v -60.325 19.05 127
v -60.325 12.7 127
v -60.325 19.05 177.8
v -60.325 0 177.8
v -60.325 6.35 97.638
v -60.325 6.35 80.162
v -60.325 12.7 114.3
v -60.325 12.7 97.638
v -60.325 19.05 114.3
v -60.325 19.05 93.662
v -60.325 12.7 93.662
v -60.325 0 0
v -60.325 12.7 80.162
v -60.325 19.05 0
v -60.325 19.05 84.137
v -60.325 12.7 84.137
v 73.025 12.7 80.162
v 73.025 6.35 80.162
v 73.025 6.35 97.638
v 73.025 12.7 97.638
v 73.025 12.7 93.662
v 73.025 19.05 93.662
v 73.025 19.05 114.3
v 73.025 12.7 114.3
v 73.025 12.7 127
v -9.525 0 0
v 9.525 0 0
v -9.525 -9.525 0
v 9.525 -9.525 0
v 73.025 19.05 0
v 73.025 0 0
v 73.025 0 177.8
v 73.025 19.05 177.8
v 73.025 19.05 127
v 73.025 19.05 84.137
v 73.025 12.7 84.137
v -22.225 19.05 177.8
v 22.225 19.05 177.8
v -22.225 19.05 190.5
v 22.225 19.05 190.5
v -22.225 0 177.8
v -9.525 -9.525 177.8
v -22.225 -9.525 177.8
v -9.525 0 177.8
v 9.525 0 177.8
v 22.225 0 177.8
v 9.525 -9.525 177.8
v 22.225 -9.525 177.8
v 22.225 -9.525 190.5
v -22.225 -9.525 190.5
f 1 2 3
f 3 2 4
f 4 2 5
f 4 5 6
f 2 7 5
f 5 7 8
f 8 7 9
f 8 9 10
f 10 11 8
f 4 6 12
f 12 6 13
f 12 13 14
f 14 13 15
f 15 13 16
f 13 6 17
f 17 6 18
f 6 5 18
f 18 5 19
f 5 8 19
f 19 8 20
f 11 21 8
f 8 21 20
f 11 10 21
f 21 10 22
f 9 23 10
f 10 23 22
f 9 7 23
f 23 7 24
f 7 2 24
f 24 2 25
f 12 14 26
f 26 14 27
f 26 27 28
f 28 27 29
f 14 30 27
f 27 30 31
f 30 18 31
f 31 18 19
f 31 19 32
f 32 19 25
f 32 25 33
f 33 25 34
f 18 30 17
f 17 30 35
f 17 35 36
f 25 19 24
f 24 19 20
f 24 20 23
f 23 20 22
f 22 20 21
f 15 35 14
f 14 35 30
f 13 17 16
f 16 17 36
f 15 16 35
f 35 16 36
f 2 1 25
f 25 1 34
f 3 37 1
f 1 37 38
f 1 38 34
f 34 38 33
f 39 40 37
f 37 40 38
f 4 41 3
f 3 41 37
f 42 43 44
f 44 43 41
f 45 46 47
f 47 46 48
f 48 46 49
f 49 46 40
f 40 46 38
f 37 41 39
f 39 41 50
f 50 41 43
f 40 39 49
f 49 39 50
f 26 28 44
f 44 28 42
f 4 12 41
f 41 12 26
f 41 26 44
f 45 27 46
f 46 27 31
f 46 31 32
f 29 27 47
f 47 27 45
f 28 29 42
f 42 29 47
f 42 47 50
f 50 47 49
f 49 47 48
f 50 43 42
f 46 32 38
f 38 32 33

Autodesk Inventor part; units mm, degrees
ref_plane "YZ Plane" through (0, 0, 0) normal (1, 0, 0) x (0, 1, 0)
ref_plane "XZ Plane" through (0, 0, 0) normal (0, 1, 0) x (-1, 0, 0)
sketch "Sketch3" plane through (0, 0, 0) normal (0, 0, 1) x (1, 0, 0)
  line L0 (0, -9.525) -> (9.525, -9.525)
  line L1 (9.525, -9.525) -> (9.525, 0)
  line L2 (0, 0) -> (0, -9.525) construction
  line L3 (0, 0) -> (9.525, 0) construction
  line L4 (0, -9.525) -> (-9.525, -9.525)
  line L5 (-9.525, -9.525) -> (-9.525, 0)
  line L6 (9.525, 0) -> (73.025, 0)
  line L7 (-187.325, 0) -> (-187.325, 19.05)
  line L8 (-187.325, 0) -> (-9.525, 0)
  line L9 (73.025, 0) -> (73.025, 19.05)
  line L10 (73.025, 19.05) -> (-187.325, 19.05)
  dimension "d0" = 9.525
  dimension "d1" = 9.525
  dimension "d6" = 63.5
  dimension "d8" = 19.05
  dimension "d9" = 177.8
extrude "Extrusion1" add sketch "Sketch3" along normal mid plane 355.6
sketch "Sketch4" plane through (0, 0, 177.8) normal (0, 0, 1) x (1, 0, 0)
  line L0 (-187.325, 19.05) -> (73.025, 19.05) construction
  line L1 (0, 19.05) -> (0, -9.525) construction
  line L2 (9.525, -9.525) -> (-9.525, -9.525) construction
  line L3 (0, -9.525) -> (-22.225, -9.525)
  line L4 (-22.225, -9.525) -> (-22.225, 19.05)
  line L5 (-22.225, 19.05) -> (0, 19.05)
  line L6 (187.325, 19.05) -> (-73.025, 19.05) construction
  line L7 (0, -9.525) -> (22.225, -9.525)
  line L8 (22.225, -9.525) -> (22.225, 19.05)
  line L9 (0, 19.05) -> (22.225, 19.05)
  point P0 (0, 0)
  dimension "d12" = 22.225
extrude "Extrusion2" add sketch "Sketch4" along normal blind 12.7
mirror "Mirror1" about plane through (0, 0, 0) normal (0, 0, 1) of "Extrusion2"
sketch "Sketch6" plane through (-187.325, 0, -177.8) normal (0, -1, 0) x (1, 0, 0)
  line L0 (82.55, 165.1) -> (88.9, 165.1)
  line L1 (88.9, 165.1) -> (88.9, 190.5)
  line L2 (88.9, 190.5) -> (82.55, 190.5)
  line L3 (82.55, 190.5) -> (82.55, 165.1)
  line L4 (82.55, 165.1) -> (88.9, 190.5) construction
  line L5 (88.9, 165.1) -> (82.55, 190.5) construction
  line L6 (177.8, 0) -> (177.8, 355.6) projected
  point P0 (187.325, 177.8)
  point P1 (85.725, 177.8)
  dimension "d16" = 12.7
  dimension "d18" = 6.35
  dimension "d19" = 88.9
extrude "Extrusion3" cut sketch "Sketch6" against normal through all
sketch "Sketch7" plane through (0, 0, 177.8) normal (0, 0, 1) x (1, 0, 0)
  line L0 (-187.325, 19.05) -> (-22.225, 19.05) projected
  line L1 (-161.925, 19.05) -> (-117.475, 19.05)
  line L2 (-117.475, 19.05) -> (-117.475, -3.81)
  line L3 (-117.475, -3.81) -> (-161.925, -3.81)
  line L4 (-161.925, -3.81) -> (-161.925, 19.05)
  line L5 (-187.325, 19.05) -> (-187.325, 0) projected
  point P0 (0, 0)
  dimension "d22" = 44.45
  dimension "d23" = 22.86
  dimension "d24" = 25.4
extrude "Extrusion4" add sketch "Sketch7" along normal blind 12.7
mirror "Mirror2" about plane through (0, 0, 0) normal (0, 0, 1) of "Extrusion4"
sketch "Sketch9" plane through (73.025, 0, 177.8) normal (1, 0, 0) x (0, 0, -1)
  line L0 (355.6, 19.05) -> (0, 19.05) projected
  line L1 (50.8, 19.05) -> (63.5, 19.05)
  line L2 (63.5, 19.05) -> (63.5, 12.7)
  line L3 (63.5, 12.7) -> (50.8, 12.7)
  line L4 (50.8, 12.7) -> (50.8, 19.05)
  line L5 (0, 0) -> (0, 19.05) projected
  point P0 (177.8, 0)
  dimension "d28" = 12.7
  dimension "d29" = 6.35
  dimension "d30" = 50.8
extrude "Extrusion5" cut sketch "Sketch9" against normal through all
mirror "Mirror3" about plane through (0, 0, 0) normal (0, 0, 1) of "Extrusion5"
sketch "Sketch12" plane through (73.025, 0, 177.8) normal (1, 0, 0) x (0, 0, -1)
  line L0 (355.6, 0) -> (0, 0) construction
  line L1 (88.9, 0) -> (88.9, 16.5009) construction
  line L2 (0, 0) -> (0, 19.05) projected
  line L3 (50.8, 19.05) -> (0, 19.05) projected
  line L4 (84.1375, 19.05) -> (84.1375, 12.7)
  line L5 (84.1375, 12.7) -> (80.1624, 12.7)
  line L6 (80.1624, 12.7) -> (80.1624, 6.35)
  line L7 (80.1624, 6.35) -> (88.9, 6.35)
  line L8 (93.6625, 19.05) -> (93.6625, 12.7)
  line L9 (93.6625, 12.7) -> (97.6376, 12.7)
  line L10 (97.6376, 12.7) -> (97.6376, 6.35)
  line L11 (97.6376, 6.35) -> (88.9, 6.35)
  line L12 (84.1375, 19.05) -> (93.6625, 19.05)
  point P0 (177.8, 0)
  dimension "d46" = 88.9
  dimension "d47" = 4.7625
  dimension "d48" = 6.35
  dimension "d49" = 6.35
  dimension "d50" = 8.7376
extrude "Extrusion8" cut sketch "Sketch12" against normal through all
mirror "Mirror4" about plane through (0, 0, 0) normal (0, 0, 1) of "Extrusion8"
split "Split2" plane through (0, 0, 0) removes the side toward (0, 0, -1)
ref_plane "Work Plane1" through (-60.325, 0, 177.8) normal (1, 0, 0) x (0, 0, -1)
split "Split3" plane through (-60.325, 0, 177.8) removes the side toward (-1, 0, 0)
properties part number "BandSawJigBottomSpiltA-SpiltA" material "LCP Plastic"
